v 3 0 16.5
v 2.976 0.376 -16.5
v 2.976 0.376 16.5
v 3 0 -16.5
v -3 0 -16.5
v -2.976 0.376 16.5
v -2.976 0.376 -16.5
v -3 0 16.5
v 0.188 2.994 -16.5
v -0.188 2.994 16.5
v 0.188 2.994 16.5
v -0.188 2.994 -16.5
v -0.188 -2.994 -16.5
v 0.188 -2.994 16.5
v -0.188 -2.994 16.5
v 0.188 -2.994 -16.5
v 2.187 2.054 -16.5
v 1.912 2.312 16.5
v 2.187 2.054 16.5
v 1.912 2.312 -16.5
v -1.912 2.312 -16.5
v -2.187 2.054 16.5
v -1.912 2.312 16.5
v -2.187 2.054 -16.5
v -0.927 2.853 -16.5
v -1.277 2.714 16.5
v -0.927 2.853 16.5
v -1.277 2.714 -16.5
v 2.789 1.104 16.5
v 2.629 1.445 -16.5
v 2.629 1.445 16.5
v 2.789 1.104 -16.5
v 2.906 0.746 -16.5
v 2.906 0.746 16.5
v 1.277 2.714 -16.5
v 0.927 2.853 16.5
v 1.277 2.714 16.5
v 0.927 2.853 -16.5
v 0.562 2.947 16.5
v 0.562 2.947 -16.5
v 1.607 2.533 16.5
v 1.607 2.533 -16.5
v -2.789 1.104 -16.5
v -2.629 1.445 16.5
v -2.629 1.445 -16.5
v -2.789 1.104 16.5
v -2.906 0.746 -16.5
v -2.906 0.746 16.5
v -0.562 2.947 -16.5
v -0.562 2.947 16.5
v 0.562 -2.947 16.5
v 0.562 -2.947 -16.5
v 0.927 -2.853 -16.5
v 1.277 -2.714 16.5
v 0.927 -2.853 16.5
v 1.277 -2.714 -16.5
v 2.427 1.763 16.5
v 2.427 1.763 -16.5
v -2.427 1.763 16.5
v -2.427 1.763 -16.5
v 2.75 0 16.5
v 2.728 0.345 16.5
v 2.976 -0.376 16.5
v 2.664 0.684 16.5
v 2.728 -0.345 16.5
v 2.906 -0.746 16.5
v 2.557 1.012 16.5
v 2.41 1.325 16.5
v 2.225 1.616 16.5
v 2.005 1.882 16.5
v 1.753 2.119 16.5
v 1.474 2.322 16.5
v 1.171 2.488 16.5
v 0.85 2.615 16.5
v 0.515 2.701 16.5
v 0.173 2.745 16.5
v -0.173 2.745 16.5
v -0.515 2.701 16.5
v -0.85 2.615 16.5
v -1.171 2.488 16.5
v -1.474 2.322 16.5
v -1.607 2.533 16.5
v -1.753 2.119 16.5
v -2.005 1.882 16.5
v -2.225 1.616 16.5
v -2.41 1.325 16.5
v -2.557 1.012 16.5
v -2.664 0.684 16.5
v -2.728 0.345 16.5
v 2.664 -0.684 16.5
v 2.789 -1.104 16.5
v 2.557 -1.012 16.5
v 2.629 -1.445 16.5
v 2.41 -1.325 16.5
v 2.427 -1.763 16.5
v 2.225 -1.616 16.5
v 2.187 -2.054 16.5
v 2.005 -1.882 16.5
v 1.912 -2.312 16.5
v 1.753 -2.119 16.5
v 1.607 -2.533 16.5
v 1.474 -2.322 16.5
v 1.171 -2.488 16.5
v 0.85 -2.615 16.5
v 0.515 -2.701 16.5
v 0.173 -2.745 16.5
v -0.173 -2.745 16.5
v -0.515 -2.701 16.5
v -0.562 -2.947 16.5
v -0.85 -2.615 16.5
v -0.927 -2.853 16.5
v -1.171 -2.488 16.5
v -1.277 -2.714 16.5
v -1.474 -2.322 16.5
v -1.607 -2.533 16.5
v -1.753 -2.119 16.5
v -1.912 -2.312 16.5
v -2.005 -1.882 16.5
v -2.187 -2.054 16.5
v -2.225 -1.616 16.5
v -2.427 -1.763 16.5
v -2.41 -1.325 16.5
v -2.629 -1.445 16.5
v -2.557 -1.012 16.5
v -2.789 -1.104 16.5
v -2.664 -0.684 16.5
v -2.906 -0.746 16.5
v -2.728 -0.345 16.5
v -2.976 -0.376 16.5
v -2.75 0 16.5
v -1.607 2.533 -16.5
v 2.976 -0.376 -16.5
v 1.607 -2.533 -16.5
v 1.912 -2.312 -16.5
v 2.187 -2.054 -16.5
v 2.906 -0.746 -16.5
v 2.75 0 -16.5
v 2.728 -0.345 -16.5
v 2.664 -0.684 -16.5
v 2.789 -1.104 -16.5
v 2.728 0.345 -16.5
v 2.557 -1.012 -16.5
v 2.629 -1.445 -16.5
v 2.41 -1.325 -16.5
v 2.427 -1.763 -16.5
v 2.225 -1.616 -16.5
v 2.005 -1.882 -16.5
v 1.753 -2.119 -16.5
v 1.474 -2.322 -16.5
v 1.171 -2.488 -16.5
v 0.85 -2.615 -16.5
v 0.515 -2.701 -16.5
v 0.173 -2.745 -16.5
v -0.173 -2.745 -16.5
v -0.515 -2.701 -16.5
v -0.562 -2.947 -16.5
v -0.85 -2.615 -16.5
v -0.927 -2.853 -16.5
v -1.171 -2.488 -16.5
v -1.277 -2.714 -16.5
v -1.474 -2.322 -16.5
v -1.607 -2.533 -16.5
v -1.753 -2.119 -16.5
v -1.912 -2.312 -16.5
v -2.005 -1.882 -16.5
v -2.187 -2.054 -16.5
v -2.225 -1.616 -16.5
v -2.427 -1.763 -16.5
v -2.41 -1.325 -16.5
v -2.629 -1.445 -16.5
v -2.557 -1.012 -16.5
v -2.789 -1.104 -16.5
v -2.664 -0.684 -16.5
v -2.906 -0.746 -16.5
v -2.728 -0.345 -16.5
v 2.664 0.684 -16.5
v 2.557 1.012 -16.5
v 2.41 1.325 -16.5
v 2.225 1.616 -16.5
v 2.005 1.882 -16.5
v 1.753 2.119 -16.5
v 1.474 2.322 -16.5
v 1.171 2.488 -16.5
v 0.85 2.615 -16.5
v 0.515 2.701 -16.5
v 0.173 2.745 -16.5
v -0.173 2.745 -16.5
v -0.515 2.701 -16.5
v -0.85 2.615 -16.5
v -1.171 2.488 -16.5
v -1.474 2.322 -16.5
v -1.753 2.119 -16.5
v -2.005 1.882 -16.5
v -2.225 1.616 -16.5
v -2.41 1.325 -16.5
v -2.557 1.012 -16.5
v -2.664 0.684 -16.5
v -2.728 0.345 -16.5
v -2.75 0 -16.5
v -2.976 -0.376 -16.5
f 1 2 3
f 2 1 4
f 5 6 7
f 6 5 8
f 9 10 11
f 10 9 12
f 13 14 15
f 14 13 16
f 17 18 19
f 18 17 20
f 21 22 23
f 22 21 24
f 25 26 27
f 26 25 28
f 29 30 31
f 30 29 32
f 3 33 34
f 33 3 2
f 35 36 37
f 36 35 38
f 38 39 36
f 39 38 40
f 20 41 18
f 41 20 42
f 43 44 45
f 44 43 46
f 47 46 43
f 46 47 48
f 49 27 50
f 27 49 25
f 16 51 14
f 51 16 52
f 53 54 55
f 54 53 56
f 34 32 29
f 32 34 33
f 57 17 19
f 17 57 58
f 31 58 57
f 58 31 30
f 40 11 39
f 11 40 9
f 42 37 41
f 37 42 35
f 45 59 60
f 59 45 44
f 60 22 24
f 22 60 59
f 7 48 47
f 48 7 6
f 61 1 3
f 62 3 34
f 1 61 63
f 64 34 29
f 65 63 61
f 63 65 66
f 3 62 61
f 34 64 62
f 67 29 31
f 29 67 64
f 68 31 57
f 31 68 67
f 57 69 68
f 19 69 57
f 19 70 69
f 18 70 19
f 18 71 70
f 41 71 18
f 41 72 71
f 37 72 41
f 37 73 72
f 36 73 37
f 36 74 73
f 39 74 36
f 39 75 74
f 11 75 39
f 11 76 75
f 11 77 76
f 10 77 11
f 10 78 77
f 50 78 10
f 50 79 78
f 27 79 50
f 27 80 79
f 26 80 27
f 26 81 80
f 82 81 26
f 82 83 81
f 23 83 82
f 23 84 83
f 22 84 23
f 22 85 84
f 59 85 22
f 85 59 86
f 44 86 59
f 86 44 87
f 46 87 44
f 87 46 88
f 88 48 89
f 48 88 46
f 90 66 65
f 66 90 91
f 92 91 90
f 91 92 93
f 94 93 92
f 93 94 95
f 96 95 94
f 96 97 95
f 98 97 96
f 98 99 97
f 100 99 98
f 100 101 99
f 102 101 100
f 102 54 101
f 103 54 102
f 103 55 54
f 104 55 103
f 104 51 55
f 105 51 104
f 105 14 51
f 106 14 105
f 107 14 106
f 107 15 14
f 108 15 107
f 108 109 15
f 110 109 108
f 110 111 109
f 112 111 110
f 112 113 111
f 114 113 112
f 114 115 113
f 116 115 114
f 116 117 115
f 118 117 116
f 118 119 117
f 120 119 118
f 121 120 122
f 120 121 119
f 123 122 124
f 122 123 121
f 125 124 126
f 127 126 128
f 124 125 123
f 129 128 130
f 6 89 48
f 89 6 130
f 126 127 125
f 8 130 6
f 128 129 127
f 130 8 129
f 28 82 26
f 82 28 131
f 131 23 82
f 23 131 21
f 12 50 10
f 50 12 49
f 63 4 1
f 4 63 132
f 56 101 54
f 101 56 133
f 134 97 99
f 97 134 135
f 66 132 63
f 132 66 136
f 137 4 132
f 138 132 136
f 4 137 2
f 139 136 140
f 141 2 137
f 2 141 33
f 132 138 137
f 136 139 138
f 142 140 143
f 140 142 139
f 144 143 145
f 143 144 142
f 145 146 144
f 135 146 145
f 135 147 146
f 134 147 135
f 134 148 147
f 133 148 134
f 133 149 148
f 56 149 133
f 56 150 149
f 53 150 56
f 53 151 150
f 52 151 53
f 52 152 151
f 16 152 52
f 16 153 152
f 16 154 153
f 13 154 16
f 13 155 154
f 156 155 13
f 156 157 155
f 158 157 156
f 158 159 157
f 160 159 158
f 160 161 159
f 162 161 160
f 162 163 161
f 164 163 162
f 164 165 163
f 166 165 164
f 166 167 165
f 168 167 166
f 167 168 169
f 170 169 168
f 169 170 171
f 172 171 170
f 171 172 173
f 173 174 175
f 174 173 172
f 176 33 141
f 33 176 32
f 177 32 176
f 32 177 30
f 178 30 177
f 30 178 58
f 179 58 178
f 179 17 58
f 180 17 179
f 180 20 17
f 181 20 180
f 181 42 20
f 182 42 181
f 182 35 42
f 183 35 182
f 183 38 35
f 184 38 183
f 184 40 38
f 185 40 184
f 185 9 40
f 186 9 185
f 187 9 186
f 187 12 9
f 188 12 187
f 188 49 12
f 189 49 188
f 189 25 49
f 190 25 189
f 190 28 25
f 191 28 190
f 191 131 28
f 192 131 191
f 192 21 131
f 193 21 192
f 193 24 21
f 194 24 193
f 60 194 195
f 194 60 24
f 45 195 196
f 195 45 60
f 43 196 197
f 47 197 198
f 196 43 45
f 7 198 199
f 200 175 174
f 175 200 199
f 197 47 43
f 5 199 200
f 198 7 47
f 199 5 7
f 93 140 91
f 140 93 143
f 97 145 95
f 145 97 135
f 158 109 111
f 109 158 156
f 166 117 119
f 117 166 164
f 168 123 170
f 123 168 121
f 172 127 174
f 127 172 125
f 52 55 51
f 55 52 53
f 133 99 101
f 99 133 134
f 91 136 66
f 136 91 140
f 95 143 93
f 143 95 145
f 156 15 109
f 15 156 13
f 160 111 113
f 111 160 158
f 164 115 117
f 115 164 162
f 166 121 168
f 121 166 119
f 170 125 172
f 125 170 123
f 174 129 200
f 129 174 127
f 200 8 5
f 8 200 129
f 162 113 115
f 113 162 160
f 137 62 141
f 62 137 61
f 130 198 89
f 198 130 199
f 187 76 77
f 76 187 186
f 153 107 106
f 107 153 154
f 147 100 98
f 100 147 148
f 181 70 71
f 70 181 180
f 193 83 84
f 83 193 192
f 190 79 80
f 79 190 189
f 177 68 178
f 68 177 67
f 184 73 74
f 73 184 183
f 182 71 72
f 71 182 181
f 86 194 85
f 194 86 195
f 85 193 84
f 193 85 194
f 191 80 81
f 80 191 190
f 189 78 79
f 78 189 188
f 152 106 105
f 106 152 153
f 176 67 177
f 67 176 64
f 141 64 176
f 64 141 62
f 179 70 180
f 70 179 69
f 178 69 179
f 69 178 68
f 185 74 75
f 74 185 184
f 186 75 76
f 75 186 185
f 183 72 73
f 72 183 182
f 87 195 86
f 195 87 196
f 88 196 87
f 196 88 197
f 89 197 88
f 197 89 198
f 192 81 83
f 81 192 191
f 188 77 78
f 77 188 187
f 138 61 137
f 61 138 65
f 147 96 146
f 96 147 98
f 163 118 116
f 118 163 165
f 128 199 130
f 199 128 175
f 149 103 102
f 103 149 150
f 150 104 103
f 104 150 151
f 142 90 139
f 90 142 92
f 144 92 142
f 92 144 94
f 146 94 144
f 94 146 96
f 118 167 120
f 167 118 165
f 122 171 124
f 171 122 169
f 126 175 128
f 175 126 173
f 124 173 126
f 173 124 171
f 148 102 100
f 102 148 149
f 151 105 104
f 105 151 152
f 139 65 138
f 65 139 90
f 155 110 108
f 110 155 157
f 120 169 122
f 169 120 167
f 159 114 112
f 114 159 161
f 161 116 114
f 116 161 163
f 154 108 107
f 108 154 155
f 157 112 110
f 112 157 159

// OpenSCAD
$fn = 50;


difference() {
	union() {
		translate(v = [0, 0, -16.5000000000]) {
			cylinder(h = 33, r = 3.0000000000);
		}
	}
	union() {
		translate(v = [0, 0, -100.0000000000]) {
			cylinder(h = 200, r = 2.7500000000);
		}
	}
}
